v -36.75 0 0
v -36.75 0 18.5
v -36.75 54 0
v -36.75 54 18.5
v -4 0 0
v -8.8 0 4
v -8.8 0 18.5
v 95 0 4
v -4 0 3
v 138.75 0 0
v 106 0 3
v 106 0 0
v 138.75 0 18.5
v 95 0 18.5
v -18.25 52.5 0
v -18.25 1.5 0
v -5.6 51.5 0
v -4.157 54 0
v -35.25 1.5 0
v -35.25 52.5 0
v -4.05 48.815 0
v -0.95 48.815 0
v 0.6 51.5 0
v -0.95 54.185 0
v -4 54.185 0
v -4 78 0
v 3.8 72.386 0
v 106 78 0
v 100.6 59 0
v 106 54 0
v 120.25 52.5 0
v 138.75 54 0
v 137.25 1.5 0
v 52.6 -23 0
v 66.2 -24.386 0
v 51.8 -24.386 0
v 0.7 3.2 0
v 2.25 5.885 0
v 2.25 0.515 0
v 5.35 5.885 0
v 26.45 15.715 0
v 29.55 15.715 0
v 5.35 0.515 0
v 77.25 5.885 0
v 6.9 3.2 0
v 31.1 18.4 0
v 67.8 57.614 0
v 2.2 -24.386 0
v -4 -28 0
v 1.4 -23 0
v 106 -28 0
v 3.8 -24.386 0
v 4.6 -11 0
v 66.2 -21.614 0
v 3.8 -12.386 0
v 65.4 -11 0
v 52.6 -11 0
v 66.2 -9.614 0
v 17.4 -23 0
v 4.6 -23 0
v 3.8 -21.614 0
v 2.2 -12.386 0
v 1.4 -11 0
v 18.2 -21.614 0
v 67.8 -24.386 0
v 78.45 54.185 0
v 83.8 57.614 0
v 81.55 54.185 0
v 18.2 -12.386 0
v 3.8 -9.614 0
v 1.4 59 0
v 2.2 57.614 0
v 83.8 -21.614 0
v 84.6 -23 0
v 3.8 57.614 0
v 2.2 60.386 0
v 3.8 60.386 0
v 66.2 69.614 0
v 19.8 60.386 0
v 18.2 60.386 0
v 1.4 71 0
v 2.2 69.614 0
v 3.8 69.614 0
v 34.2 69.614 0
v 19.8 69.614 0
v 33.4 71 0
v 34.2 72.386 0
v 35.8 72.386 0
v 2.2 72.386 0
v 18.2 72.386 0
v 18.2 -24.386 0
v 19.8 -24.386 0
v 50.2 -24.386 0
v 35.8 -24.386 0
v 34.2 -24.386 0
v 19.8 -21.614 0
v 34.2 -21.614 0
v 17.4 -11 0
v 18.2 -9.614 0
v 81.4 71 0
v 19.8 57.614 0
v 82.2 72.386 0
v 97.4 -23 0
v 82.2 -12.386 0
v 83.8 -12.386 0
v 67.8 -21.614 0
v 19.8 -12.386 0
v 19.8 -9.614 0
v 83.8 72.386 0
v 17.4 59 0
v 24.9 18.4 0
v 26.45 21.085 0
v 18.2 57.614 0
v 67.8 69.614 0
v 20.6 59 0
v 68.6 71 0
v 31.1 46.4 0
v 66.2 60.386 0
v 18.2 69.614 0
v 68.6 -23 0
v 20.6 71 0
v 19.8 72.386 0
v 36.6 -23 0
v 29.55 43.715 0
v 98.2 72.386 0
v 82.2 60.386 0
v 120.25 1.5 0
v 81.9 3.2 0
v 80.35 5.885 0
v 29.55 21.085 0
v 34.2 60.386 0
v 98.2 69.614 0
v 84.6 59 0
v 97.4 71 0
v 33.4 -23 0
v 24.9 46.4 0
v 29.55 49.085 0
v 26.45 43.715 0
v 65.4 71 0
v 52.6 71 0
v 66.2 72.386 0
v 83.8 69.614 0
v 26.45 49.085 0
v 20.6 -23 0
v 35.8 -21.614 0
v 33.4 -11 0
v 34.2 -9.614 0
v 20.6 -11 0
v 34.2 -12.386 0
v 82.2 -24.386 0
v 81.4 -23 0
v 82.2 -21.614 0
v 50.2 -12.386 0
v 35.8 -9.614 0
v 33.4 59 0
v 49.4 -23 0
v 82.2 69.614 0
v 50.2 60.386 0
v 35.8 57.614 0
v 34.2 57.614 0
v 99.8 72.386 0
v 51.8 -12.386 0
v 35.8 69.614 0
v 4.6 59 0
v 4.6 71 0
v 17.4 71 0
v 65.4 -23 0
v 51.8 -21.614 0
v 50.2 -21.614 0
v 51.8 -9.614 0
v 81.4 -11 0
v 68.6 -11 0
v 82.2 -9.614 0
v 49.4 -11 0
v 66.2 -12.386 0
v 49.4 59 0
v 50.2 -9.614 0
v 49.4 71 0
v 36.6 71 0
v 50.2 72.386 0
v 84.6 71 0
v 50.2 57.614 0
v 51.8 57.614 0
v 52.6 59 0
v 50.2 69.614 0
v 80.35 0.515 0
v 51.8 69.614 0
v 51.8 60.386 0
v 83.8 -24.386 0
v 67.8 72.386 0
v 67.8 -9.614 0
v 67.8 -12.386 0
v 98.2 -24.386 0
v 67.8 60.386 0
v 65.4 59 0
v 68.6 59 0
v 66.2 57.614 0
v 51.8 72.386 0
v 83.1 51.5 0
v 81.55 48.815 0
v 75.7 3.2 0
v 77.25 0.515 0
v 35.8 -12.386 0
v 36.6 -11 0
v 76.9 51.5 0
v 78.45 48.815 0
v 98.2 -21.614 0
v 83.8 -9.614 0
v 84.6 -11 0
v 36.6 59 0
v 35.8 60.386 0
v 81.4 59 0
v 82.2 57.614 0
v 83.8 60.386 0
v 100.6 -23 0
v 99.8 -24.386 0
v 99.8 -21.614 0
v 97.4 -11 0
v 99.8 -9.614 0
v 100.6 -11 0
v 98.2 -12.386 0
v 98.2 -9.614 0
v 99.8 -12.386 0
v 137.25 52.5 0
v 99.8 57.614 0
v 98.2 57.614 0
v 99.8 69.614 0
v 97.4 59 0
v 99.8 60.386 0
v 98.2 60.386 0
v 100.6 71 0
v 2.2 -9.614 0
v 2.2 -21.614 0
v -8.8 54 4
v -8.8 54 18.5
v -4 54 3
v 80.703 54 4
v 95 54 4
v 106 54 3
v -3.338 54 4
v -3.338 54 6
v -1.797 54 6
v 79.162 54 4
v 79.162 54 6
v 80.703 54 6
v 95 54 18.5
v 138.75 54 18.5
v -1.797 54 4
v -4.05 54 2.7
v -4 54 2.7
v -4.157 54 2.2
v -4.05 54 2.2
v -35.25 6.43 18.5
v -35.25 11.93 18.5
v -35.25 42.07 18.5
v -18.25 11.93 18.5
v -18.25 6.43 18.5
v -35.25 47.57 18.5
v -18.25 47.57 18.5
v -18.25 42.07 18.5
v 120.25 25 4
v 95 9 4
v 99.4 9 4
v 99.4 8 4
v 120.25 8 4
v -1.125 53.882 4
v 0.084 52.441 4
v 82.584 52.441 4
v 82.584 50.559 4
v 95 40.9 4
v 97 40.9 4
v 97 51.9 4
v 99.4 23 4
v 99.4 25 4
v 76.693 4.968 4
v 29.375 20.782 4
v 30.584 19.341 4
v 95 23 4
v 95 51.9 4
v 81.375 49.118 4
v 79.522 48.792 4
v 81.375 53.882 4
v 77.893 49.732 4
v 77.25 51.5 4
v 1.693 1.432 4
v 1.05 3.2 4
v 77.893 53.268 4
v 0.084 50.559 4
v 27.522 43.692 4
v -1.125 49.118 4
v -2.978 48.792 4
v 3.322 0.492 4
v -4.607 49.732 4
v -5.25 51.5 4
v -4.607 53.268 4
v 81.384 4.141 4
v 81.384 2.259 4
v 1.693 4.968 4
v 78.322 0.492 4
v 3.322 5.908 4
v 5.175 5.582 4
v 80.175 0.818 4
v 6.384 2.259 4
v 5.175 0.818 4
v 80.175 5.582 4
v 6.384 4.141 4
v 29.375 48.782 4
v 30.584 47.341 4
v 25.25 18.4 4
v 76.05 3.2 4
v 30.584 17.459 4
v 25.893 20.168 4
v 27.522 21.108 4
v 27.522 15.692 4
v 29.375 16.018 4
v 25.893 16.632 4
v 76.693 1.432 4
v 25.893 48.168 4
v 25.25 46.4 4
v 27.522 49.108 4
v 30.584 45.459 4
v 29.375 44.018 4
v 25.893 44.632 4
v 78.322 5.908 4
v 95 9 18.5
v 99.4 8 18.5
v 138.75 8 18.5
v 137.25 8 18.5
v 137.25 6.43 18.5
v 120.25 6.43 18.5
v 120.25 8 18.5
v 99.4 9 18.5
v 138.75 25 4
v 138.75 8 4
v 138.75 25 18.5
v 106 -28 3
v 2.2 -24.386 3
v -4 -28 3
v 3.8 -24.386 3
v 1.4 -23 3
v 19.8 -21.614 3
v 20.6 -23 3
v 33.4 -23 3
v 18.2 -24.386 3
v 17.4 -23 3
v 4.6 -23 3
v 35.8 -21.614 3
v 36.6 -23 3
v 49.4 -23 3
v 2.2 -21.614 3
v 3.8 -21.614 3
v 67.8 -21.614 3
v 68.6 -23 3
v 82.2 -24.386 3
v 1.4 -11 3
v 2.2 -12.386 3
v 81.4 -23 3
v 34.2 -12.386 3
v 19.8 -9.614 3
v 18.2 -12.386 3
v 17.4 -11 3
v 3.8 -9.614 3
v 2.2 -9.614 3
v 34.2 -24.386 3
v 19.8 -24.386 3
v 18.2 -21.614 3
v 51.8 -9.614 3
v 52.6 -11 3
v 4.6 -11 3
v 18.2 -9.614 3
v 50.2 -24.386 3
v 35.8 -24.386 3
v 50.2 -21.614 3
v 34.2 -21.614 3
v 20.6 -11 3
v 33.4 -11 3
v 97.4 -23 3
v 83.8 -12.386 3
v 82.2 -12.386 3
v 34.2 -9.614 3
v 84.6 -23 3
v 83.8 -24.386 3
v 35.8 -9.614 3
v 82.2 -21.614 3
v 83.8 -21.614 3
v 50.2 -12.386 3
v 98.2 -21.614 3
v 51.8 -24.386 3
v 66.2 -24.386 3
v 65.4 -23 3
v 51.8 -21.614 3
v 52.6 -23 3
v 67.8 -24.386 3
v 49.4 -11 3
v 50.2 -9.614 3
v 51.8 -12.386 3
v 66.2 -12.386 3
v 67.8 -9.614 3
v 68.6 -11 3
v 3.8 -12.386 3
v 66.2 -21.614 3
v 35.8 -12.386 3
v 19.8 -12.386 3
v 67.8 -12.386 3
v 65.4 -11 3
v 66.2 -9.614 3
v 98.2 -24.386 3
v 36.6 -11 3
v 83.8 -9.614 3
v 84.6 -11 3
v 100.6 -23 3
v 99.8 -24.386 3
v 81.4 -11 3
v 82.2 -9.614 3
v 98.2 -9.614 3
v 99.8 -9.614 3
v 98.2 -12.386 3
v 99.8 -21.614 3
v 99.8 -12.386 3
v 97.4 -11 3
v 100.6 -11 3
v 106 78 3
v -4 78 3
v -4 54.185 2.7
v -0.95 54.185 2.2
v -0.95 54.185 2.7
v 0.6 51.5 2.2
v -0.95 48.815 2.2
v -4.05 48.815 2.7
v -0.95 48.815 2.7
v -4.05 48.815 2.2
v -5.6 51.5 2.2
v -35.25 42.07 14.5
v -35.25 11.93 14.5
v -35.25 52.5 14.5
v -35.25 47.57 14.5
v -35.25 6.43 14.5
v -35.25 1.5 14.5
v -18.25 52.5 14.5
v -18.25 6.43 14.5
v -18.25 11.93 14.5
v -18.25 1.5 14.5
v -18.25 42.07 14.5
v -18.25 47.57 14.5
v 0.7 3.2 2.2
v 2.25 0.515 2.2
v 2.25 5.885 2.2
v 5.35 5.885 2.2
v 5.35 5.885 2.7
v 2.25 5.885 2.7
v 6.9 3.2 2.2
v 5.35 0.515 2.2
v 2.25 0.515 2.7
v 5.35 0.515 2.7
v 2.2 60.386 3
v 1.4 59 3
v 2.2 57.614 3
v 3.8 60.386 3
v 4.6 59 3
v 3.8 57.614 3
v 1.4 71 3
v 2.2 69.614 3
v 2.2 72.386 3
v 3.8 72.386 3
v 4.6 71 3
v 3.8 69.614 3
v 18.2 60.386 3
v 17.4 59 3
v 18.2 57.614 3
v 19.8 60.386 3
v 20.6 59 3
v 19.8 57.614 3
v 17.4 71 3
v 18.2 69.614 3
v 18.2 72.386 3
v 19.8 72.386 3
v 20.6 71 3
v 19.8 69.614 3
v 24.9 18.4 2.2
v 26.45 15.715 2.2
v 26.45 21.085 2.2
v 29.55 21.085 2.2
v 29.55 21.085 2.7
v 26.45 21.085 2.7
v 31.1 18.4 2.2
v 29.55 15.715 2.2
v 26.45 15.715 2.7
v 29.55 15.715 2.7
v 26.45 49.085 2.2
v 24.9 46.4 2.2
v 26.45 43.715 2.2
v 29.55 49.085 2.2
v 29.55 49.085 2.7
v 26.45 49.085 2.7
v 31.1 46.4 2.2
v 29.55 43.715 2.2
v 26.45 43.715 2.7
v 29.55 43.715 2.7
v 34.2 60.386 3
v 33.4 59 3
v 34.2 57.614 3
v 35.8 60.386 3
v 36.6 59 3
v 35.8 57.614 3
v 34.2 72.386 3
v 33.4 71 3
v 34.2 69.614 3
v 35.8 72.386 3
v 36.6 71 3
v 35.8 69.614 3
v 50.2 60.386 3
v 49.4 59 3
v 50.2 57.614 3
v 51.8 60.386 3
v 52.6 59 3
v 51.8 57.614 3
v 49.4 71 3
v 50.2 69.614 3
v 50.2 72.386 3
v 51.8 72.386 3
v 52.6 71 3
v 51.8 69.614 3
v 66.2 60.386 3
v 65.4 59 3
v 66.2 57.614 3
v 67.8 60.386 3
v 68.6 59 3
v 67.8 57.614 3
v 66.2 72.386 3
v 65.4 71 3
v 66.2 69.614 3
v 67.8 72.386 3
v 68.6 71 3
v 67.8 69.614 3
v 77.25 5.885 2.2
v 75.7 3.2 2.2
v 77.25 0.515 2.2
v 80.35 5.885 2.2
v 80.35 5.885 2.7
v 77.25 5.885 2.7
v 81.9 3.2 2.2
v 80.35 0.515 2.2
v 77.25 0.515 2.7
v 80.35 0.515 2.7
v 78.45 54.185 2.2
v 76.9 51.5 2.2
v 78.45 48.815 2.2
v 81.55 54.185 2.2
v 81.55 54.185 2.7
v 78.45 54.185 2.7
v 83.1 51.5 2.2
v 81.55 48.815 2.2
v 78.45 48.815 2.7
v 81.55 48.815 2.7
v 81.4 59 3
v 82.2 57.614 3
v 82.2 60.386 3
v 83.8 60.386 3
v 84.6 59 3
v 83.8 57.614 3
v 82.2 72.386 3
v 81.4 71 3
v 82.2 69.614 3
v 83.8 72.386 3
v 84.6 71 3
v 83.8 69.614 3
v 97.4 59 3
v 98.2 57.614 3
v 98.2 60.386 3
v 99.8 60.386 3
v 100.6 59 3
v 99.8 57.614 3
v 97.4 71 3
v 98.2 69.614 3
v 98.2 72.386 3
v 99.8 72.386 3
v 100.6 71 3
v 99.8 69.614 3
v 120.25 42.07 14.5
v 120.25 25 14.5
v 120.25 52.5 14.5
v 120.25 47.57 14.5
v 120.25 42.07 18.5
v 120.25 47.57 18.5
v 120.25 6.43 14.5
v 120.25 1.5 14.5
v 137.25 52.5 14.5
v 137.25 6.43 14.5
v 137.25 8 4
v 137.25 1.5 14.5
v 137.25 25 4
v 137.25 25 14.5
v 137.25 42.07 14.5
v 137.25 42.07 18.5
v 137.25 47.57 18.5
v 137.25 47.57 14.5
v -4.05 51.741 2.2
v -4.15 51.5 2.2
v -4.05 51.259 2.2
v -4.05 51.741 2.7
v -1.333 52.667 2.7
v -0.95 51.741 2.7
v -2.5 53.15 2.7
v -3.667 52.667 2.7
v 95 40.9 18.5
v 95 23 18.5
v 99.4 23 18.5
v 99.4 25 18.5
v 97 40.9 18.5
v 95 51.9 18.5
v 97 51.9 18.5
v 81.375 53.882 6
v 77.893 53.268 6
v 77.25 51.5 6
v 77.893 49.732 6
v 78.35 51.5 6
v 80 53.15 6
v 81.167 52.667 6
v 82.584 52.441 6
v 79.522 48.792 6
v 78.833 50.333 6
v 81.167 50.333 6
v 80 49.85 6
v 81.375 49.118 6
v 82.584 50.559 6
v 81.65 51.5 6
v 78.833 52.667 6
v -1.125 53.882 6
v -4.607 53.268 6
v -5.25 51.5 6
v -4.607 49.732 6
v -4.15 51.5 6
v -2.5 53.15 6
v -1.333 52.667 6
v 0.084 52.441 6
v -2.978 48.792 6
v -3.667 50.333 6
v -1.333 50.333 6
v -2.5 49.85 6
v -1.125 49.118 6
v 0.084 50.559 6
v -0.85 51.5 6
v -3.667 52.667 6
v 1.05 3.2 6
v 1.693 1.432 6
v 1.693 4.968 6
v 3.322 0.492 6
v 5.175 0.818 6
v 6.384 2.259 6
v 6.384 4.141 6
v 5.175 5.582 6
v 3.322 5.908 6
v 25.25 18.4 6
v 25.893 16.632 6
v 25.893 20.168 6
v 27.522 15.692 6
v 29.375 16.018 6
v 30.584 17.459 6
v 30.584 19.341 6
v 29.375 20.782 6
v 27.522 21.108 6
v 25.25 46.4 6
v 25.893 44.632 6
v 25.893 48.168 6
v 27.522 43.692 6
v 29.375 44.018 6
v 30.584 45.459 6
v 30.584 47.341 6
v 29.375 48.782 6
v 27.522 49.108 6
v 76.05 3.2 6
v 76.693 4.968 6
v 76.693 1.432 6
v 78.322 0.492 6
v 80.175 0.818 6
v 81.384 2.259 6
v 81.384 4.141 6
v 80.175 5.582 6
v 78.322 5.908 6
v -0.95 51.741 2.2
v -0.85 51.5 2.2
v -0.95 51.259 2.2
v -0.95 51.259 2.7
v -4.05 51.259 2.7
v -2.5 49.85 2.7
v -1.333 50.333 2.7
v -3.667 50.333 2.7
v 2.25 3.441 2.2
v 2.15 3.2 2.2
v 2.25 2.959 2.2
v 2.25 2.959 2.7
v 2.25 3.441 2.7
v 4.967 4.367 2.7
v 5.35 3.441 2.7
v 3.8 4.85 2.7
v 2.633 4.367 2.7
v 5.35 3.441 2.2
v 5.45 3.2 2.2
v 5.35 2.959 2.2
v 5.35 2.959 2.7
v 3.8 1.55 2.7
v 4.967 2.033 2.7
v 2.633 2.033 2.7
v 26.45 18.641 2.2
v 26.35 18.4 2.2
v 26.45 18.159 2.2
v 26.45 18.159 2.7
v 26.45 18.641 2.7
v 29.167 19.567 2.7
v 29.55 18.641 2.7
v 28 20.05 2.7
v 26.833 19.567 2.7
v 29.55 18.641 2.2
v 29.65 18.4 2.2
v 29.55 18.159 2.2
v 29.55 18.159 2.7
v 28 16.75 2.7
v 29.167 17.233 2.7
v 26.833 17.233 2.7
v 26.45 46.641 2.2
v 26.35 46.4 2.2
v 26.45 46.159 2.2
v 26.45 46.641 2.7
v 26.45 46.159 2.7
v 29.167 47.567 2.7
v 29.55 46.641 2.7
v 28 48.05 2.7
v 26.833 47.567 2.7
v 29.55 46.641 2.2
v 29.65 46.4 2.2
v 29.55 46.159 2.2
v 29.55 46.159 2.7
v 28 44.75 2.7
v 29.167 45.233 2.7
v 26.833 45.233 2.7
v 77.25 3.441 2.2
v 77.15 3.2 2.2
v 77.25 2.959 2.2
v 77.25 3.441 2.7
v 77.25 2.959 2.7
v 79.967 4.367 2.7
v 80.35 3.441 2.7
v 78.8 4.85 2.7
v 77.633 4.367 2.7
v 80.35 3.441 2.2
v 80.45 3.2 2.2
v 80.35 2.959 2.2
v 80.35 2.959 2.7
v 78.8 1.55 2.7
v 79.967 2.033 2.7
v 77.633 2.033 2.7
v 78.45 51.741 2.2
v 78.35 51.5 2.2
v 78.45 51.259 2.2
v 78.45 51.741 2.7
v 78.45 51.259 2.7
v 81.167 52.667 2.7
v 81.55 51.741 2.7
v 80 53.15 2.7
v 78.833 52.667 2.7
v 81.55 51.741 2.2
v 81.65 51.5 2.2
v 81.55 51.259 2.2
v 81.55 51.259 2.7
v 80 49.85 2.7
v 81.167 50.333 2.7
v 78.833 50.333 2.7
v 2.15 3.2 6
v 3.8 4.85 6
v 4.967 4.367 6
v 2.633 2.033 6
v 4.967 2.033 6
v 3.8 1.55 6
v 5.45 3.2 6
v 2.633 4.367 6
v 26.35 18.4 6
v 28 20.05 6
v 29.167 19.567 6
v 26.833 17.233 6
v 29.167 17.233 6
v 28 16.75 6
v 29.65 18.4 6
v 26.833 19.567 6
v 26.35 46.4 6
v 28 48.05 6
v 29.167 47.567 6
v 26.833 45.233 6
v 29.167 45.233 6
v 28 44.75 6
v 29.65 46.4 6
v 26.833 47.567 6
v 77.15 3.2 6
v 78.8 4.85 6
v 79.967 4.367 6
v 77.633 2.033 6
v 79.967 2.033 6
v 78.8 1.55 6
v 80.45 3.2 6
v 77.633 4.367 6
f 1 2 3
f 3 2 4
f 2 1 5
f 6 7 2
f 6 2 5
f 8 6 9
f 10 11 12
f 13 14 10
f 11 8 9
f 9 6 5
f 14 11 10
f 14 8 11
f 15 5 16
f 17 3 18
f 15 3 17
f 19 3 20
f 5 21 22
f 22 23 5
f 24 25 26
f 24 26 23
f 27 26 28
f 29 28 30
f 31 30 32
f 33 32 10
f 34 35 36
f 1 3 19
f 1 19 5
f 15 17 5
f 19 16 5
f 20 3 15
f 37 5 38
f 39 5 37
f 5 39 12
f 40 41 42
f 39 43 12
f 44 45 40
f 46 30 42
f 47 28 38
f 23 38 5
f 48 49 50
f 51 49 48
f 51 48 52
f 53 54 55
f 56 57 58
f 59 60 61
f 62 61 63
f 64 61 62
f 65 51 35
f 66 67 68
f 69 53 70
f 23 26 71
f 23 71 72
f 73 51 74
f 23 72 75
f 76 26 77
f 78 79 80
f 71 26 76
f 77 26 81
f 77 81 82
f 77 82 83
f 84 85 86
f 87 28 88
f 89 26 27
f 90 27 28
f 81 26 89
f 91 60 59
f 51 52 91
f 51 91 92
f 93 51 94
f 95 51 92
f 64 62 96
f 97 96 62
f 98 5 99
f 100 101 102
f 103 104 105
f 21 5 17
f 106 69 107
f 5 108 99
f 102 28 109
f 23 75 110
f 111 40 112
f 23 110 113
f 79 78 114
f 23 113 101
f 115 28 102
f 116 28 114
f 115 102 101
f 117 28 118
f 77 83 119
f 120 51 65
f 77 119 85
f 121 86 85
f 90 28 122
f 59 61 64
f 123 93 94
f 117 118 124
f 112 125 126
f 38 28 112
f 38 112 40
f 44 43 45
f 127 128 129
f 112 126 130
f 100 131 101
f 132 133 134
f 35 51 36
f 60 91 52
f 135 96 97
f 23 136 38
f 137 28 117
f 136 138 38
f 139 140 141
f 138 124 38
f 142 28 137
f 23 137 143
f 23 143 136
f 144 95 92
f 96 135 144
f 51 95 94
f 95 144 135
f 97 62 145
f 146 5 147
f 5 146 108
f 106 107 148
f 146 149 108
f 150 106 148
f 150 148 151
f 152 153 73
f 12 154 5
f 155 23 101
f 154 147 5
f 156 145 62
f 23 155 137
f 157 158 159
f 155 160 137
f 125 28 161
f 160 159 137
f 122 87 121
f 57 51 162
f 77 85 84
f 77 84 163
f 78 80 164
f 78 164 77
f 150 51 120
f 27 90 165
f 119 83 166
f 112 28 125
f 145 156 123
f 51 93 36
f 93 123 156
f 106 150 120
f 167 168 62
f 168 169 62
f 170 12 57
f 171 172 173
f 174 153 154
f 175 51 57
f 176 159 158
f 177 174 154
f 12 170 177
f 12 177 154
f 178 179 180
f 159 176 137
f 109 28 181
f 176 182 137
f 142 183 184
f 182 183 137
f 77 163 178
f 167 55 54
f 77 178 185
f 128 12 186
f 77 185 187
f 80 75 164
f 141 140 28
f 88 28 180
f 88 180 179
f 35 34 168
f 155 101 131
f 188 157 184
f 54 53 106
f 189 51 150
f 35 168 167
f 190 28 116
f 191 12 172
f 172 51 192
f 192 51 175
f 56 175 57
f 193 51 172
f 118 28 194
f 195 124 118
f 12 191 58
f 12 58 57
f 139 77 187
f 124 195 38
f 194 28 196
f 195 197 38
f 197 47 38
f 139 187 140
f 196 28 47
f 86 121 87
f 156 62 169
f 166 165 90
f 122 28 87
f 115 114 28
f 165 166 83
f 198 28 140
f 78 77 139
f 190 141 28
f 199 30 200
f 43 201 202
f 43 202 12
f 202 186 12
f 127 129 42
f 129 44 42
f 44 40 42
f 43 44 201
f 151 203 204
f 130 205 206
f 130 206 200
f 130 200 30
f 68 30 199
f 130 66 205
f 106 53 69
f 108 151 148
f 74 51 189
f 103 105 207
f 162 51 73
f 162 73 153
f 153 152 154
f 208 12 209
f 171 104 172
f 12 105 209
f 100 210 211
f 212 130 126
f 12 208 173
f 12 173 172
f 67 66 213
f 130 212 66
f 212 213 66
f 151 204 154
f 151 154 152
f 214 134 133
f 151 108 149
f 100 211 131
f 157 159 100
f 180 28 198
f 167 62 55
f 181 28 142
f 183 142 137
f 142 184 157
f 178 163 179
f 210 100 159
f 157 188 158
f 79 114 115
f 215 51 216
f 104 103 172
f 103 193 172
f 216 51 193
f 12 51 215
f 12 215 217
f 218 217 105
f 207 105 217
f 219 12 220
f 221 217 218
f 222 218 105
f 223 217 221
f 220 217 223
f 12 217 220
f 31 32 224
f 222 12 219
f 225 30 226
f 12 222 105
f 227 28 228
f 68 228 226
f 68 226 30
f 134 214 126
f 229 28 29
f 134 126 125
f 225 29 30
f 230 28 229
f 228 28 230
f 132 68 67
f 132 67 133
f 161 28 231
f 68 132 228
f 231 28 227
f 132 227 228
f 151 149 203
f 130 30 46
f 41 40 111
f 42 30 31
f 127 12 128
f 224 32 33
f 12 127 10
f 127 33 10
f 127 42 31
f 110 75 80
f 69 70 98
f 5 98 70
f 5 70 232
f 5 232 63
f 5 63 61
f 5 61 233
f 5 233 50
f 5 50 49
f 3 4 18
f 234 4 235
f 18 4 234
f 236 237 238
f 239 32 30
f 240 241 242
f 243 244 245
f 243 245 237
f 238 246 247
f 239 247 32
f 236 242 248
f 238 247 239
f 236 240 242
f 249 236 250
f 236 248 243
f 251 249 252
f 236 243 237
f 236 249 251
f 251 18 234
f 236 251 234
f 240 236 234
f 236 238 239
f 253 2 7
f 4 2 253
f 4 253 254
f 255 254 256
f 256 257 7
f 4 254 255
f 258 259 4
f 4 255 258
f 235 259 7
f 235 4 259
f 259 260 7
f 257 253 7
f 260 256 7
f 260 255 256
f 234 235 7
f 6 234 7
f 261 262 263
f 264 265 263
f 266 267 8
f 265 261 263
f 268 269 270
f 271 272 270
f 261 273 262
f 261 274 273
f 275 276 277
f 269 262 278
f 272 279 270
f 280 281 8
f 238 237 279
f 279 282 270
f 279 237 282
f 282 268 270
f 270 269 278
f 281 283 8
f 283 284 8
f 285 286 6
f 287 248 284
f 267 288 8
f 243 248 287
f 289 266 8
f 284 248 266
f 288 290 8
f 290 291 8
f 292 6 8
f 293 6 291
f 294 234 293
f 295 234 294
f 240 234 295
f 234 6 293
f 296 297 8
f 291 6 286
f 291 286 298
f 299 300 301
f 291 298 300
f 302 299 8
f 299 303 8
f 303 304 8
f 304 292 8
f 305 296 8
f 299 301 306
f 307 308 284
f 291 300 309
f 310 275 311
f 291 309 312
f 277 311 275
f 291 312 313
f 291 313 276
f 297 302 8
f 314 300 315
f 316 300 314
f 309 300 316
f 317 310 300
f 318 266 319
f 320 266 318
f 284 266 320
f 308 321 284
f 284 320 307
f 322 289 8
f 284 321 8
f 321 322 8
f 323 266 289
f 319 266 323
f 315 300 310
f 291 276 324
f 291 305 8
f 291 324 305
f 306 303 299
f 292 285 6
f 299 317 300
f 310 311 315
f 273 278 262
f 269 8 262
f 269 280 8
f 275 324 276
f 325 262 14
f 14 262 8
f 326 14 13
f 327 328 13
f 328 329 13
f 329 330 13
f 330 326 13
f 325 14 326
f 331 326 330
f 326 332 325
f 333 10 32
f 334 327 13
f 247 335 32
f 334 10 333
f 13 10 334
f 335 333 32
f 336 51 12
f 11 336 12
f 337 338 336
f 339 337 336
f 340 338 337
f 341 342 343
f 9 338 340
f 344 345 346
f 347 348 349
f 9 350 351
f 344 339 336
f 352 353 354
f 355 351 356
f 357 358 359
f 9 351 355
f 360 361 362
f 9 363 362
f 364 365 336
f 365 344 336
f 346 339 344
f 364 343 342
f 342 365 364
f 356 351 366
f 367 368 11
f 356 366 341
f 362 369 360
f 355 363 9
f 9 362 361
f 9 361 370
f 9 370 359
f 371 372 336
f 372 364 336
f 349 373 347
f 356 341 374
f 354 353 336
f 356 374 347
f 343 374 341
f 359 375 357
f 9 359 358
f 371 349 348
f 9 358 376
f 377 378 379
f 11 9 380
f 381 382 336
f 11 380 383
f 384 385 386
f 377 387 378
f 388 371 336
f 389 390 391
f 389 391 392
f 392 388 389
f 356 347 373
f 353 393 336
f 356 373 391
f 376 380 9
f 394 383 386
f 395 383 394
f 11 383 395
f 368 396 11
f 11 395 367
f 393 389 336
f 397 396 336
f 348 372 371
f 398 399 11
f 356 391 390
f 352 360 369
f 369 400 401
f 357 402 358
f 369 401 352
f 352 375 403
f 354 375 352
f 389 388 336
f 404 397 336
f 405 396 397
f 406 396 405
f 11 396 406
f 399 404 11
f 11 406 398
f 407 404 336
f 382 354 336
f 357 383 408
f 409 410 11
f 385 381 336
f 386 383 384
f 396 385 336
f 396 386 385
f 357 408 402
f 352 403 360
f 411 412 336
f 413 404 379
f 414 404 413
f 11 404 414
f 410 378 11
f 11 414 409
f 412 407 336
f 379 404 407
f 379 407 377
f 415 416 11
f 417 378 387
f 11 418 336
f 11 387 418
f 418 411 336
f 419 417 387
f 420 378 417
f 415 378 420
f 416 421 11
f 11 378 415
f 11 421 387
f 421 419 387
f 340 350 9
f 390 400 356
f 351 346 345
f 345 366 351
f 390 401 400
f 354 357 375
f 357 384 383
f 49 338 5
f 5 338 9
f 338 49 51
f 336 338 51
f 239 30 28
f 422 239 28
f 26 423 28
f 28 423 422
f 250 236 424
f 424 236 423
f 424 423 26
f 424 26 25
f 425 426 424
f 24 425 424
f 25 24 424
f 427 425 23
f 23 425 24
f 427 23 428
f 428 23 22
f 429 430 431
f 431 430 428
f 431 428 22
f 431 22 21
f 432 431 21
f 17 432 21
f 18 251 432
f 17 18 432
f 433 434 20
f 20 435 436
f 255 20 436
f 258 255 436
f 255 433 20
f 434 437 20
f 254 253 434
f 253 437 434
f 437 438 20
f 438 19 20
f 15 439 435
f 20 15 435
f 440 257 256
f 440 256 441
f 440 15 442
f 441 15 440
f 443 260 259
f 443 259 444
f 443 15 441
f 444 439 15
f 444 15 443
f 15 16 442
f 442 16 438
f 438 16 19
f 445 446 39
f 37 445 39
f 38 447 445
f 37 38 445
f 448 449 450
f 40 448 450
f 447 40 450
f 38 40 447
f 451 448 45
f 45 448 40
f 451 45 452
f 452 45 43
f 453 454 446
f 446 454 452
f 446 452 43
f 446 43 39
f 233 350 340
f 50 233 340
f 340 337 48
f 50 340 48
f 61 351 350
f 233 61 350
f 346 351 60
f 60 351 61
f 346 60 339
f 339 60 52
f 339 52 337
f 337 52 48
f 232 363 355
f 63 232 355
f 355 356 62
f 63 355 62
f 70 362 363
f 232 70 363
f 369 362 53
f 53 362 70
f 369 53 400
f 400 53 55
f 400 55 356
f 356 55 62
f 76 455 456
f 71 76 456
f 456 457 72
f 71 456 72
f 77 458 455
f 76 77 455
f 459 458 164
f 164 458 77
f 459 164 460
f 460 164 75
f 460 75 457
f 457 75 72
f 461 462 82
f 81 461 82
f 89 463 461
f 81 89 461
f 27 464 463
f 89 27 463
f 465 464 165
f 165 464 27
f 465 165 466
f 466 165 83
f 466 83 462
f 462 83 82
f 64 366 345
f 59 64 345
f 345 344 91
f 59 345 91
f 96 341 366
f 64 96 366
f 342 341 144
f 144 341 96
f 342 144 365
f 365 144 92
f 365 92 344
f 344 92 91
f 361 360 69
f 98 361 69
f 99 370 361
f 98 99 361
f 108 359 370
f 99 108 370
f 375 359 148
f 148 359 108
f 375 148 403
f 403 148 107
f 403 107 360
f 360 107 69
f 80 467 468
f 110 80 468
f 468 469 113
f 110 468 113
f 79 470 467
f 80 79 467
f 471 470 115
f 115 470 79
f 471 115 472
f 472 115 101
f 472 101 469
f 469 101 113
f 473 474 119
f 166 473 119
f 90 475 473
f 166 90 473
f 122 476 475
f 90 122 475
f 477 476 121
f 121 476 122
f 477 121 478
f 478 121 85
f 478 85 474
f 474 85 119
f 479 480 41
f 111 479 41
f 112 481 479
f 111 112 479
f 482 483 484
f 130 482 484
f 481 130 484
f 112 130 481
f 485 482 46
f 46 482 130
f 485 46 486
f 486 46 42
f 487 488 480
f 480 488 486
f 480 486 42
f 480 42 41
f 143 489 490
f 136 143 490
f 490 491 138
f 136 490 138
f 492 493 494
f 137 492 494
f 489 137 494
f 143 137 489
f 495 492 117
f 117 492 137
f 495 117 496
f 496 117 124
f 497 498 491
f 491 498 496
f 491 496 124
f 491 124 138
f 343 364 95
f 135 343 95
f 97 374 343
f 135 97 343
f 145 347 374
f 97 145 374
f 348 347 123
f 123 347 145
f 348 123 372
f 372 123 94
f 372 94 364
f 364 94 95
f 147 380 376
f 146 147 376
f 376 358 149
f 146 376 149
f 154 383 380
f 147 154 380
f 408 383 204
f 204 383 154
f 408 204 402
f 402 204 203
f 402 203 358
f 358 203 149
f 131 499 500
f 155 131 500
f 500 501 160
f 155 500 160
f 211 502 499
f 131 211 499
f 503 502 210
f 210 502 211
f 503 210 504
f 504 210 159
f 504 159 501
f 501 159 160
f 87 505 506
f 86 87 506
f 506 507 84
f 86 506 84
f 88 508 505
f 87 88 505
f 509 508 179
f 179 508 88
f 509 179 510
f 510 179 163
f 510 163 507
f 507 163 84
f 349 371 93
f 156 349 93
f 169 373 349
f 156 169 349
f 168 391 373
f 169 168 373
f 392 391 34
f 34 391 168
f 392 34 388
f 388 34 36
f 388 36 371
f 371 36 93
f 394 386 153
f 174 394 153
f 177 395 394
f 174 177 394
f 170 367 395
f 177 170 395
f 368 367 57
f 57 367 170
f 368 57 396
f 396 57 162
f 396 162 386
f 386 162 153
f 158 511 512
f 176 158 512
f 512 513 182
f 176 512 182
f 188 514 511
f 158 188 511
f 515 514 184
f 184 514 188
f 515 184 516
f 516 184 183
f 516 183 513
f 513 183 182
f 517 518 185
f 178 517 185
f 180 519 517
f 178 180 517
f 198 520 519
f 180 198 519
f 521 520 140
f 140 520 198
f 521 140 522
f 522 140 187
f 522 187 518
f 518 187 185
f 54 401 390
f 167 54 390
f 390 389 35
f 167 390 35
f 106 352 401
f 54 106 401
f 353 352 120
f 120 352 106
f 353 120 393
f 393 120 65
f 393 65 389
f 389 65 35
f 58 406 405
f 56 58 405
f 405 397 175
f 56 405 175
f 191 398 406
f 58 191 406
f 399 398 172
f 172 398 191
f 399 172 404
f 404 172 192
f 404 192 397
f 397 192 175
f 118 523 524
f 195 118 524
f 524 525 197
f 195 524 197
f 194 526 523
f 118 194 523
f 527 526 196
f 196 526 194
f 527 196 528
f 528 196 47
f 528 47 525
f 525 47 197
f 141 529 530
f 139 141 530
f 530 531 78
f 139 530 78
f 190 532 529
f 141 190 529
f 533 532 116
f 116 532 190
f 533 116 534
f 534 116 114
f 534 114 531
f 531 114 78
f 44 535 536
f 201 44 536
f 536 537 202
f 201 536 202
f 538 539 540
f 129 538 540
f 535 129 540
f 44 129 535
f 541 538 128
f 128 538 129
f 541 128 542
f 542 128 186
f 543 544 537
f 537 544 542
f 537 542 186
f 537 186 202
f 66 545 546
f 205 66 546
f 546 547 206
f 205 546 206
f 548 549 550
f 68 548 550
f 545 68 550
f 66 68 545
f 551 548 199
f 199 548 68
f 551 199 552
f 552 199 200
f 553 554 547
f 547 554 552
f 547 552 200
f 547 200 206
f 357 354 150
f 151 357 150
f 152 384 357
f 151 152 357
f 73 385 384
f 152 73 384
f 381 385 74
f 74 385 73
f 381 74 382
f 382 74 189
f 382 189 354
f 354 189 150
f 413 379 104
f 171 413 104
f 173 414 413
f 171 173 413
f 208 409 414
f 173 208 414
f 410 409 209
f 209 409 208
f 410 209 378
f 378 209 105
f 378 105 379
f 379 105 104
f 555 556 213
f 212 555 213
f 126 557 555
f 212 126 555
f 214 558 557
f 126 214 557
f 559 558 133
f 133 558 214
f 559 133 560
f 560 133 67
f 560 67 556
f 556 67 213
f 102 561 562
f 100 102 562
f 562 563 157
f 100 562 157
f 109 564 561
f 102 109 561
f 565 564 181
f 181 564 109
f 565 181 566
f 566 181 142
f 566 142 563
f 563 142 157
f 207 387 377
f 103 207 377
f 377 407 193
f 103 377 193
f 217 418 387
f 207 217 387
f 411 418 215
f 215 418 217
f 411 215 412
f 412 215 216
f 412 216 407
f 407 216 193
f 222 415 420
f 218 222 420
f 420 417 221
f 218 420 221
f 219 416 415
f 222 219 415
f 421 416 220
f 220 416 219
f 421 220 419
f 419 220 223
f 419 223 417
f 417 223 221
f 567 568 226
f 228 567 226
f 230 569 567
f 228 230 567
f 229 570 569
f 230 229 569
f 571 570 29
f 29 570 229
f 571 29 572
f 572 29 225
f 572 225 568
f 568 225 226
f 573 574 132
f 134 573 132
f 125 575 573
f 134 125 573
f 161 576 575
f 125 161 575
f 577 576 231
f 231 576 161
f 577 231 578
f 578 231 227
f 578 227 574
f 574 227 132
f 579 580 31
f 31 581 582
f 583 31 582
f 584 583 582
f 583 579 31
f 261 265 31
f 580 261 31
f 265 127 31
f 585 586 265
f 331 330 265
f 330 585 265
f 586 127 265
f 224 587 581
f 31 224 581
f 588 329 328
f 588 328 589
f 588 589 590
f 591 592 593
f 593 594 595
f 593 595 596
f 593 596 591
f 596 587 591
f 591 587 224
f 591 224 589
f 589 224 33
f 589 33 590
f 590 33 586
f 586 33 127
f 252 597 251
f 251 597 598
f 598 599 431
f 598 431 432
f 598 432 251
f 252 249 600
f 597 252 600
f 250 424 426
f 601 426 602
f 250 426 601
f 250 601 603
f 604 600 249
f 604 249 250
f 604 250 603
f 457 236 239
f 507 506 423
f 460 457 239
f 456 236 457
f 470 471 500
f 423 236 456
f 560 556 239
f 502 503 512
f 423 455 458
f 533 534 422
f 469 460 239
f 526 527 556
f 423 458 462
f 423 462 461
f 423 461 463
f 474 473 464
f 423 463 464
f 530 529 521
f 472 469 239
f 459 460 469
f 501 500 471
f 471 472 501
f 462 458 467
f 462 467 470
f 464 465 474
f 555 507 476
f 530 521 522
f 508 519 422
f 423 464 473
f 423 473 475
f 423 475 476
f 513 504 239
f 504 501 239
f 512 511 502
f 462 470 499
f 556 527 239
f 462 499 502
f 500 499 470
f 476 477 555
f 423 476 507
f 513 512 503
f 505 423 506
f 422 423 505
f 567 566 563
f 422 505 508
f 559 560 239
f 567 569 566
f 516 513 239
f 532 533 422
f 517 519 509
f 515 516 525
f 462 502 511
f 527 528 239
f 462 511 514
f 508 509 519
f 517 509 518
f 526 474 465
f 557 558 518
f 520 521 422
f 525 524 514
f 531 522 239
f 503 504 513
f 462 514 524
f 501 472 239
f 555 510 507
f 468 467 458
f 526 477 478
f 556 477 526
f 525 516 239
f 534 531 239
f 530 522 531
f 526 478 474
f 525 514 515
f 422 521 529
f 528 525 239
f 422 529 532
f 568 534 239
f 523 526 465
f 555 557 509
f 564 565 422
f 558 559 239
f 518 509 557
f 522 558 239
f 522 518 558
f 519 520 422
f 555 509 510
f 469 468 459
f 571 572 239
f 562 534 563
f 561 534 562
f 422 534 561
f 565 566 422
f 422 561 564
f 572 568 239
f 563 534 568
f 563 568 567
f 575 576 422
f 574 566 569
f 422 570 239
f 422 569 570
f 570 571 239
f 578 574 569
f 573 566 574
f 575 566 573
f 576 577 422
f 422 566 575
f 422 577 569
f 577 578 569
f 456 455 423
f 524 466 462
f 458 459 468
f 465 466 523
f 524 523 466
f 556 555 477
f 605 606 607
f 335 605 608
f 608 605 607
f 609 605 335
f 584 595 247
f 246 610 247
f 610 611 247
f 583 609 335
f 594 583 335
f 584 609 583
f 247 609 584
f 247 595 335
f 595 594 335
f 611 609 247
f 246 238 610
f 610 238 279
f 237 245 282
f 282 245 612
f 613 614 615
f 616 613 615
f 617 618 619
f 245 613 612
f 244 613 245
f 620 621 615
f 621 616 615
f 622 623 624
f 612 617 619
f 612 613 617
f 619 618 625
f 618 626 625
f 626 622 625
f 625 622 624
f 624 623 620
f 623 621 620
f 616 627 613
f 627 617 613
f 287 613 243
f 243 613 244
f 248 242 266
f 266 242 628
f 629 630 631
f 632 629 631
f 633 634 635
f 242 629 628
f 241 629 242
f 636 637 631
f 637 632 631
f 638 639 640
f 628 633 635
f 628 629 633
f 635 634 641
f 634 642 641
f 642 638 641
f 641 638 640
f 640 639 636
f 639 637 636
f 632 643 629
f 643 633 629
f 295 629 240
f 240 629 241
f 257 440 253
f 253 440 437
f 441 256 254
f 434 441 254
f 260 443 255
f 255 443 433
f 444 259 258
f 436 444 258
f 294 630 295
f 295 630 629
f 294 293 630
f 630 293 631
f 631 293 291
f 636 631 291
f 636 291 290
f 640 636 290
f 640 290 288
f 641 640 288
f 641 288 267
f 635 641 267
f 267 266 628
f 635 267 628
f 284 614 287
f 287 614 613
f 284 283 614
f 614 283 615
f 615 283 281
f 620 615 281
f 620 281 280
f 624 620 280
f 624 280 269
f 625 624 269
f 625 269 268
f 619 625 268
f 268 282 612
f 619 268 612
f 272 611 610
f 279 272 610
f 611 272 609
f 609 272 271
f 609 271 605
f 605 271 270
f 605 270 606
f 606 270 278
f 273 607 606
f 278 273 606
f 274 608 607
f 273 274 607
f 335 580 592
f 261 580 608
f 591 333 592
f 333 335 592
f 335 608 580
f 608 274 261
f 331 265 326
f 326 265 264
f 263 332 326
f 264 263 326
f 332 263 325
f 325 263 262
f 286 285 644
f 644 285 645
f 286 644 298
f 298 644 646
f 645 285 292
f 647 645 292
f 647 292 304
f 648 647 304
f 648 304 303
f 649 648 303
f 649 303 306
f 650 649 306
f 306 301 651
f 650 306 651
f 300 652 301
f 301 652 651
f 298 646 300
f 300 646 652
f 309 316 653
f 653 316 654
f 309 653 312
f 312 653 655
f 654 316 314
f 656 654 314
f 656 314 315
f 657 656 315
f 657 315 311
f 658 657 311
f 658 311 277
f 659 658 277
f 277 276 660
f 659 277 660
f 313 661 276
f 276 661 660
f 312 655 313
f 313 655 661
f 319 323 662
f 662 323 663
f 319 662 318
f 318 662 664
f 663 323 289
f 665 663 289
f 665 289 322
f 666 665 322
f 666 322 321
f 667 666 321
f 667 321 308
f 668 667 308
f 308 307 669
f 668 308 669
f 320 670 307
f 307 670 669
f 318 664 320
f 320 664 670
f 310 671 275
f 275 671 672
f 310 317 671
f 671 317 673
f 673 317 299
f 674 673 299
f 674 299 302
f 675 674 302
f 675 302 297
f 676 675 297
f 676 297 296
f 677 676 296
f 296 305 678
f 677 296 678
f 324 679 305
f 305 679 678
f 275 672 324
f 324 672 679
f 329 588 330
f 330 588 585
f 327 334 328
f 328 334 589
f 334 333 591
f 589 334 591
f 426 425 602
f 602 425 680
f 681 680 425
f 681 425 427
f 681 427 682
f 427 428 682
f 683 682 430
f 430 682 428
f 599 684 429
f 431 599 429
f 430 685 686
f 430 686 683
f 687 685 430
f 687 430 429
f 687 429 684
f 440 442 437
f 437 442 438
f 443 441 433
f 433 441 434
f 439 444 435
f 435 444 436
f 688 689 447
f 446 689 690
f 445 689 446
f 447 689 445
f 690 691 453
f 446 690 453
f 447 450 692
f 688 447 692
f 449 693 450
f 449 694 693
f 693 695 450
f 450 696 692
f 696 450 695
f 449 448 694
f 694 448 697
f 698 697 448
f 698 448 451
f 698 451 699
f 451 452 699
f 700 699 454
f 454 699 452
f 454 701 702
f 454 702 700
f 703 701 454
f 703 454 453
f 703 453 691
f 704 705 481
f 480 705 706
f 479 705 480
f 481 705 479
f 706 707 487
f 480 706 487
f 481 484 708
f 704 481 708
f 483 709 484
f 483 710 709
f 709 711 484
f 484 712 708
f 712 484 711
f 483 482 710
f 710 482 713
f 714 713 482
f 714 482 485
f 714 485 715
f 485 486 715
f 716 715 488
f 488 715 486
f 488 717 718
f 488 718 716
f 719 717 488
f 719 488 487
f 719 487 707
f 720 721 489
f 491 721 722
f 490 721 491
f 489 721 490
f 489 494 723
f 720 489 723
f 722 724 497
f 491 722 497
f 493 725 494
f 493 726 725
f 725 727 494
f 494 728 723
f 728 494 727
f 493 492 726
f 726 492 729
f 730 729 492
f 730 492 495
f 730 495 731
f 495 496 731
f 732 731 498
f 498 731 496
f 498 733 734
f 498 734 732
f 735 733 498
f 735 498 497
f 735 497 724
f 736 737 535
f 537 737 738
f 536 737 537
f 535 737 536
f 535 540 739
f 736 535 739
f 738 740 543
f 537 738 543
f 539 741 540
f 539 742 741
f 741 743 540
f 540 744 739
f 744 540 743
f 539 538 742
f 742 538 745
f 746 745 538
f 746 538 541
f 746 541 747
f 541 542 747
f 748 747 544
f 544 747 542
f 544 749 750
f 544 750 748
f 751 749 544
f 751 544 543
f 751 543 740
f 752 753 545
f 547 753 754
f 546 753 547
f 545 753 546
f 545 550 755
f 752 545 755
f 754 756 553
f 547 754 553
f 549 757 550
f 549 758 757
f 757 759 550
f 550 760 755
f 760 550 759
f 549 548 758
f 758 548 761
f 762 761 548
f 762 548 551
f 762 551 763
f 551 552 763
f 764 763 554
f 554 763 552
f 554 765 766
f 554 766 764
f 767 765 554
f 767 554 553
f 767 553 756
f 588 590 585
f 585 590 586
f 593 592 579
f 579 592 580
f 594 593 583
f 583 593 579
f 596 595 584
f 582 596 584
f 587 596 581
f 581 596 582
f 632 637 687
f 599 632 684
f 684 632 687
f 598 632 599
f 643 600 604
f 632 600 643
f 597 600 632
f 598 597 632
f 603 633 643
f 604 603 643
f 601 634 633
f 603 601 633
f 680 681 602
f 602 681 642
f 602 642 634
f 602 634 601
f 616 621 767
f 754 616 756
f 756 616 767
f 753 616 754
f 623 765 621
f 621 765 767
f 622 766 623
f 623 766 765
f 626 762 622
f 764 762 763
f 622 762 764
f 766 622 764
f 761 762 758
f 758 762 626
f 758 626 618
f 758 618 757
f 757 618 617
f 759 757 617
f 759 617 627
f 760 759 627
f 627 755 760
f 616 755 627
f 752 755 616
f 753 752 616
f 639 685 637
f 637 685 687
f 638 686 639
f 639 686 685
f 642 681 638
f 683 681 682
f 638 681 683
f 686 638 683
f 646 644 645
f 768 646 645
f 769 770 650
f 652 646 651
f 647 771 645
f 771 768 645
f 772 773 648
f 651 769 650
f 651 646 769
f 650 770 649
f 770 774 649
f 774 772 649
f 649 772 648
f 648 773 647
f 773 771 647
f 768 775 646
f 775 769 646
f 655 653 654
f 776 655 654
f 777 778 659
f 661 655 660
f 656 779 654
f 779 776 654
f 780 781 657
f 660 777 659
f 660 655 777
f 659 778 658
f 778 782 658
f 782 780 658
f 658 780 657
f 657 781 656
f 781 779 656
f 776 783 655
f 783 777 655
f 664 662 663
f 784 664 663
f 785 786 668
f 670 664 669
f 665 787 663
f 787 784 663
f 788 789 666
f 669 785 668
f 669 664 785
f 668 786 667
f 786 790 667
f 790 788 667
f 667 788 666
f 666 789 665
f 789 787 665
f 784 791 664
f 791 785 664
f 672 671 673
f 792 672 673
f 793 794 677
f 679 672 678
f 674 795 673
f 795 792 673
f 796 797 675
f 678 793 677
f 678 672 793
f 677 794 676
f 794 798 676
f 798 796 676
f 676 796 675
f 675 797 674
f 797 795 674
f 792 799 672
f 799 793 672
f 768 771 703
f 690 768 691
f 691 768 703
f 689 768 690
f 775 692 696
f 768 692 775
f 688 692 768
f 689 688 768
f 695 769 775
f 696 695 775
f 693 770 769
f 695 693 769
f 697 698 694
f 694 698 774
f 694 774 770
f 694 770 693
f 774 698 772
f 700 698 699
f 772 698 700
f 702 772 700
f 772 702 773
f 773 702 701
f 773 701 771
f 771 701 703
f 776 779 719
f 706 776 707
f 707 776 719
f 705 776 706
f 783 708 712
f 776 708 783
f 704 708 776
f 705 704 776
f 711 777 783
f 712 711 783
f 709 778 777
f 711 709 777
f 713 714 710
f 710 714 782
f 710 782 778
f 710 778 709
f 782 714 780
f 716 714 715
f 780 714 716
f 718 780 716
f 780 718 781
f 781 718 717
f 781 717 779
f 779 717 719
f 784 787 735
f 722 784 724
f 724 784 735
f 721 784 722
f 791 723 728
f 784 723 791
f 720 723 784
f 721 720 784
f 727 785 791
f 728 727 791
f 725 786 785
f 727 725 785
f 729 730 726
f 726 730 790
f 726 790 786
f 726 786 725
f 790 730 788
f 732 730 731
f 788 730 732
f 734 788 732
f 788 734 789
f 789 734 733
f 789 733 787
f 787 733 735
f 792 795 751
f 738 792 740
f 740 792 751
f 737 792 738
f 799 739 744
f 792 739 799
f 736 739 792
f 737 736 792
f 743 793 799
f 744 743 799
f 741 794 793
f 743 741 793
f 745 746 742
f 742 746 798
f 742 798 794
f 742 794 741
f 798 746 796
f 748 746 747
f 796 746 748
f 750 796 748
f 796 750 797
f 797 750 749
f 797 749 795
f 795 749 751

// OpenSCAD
// RAMPS mount underneath TS rails
// TODO: cable guides?
// TODO: fan mount?

// mounting holes from http://www.adafruit.com/datasheets/arduino_hole_dimensions.pdf
// also see http://www.wayneandlayne.com/blog/2010/12/19/nice-drawings-of-the-arduino-uno-and-mega-2560/
arduino_length = 102;
arduino_depth = 54;
arduino_hole_positions = [
	[15.2,50.8],
	[90.2,50.8],
	[66.0,35.6],
	[66.0,7.6],
	[14,2.5],
	[96.5,2.5]];
arduino_hole_radius = 3.3/2;

module arduino_indents(padding=1) {
	height=20;
	padding2=padding*2;
	cable_length = 50;
	cable_height = 15;
	
	boss_diameter = 5.5;
	boss_height = 2;
	
	difference() {
		union() {
			translate([-padding,-padding]) {
				// room for entire arduino mega
				cube([101.8+padding2,53.3+padding2,height]);
				// extra room for barrel jack
				translate([-2,3.1]) cube([10+padding2,9+padding2,height]);
				// extra room for USB connector
				translate([-6.4,32]) cube([10+padding2,12+padding2,height]);
			}
			// extra room for USB cable
			translate([-6.4-cable_length,32-padding-2]) cube([1+cable_length,12+padding+4,cable_height]);
		}
		
		translate([0,0,-1]) for (p = arduino_hole_positions) {
			translate(p) cylinder(h=boss_height+1,r=0.5*boss_diameter);
		}

	}
}

bottom_thickness = 4;
bottom_float = 1.5; // distance above bottom of extrusion

bottom_extra_a = 28;
bottom_extra_b = 24;
bottom_extra_width = 110;
bottom_extra_thickness = 3;

side_thickness = 0;
extrusion_center_spacing = 155.5;
extrusion_mounting_hole_width = 5.5;



module ramps_mount() {
	difference() {
		union() {
			// Box around arduino
			cube([arduino_length+2*side_thickness,2*side_thickness+arduino_depth,20-bottom_float]);

			// bigger box around arduino
			translate([-0.5*((20+extrusion_center_spacing) -(arduino_length+2*side_thickness)),0,0]) cube([20+extrusion_center_spacing,2*side_thickness+arduino_depth,20-bottom_float]);
			
			// bottom extra flat space
			translate([-0.5*((bottom_extra_width) -(arduino_length+2*side_thickness)),-bottom_extra_a,0]) cube([bottom_extra_width,2*side_thickness+arduino_depth+bottom_extra_a+bottom_extra_b,bottom_extra_thickness]);
		}
		
		// mounting holes
		translate([-0.5*((20+extrusion_center_spacing) -(arduino_length+2*side_thickness)),0.5*(2*side_thickness+arduino_depth),0])
		for (side = [-1,1]) {
			translate([0.5*(extrusion_center_spacing+20)
			+side*0.5*(extrusion_center_spacing+20)
			,0,0])
			{
				#translate([-side*10,0,0.5*(20-bottom_float)-4]) cube([20-3,2*side_thickness+arduino_depth-3,20-bottom_float],center=true);
				
				for (slot=[-0.33,0.33]) {
					#translate([-side*10,slot*(2*side_thickness+arduino_depth),0.5*(20-bottom_float)+1]) cube([20-3,extrusion_mounting_hole_width,20-bottom_float],center=true);
				}
			}
		}
		
		// randomly spaced holes
		// distances happen to be good for mounting 40mm fan
		for (ystart = [-bottom_extra_a,arduino_depth+2*side_thickness]) 
		{
			translate([0.5*(arduino_length+2*side_thickness),ystart,0])
			for (xoffset = [-48:16:48]) {
				for (yoffset = [5:12:20]) {
					translate([xoffset,yoffset,0]) cylinder(r=1.6,h=20,center=true);
				}
			}
		}
		
		// arduino indents
		translate([arduino_length+side_thickness-8,arduino_depth+side_thickness,bottom_thickness]) rotate([0,0,180]) {
			arduino_indents();

			translate([0,0,-10]) for (p = arduino_hole_positions) {
				translate(p) cylinder(h=100,r=arduino_hole_radius,$fn=8);
			}
			
			// captive hex nuts
			translate([0,0,-bottom_thickness-1]) for (p = arduino_hole_positions) {
				translate(p) {
					cylinder(h=2.2+1,r=6.2/2,$fn=6);
					// Encourage useful bottom hex holes by allowing straighter bridges
					translate([0,0,2.2+1]) cube(size=[6.2*sin(30),6.2*cos(30),1.0],center=true);
				}
			}
		}
	}
}

if (0) {
	// assembly preview
	
	// extrusion
	color("silver") translate([-100,-20,0]) cube([200,20,20]);

	translate([-.5*arduino_length-side_thickness,0,bottom_float])
	ramps_mount();
} else {
	// for printing
	ramps_mount();
}
